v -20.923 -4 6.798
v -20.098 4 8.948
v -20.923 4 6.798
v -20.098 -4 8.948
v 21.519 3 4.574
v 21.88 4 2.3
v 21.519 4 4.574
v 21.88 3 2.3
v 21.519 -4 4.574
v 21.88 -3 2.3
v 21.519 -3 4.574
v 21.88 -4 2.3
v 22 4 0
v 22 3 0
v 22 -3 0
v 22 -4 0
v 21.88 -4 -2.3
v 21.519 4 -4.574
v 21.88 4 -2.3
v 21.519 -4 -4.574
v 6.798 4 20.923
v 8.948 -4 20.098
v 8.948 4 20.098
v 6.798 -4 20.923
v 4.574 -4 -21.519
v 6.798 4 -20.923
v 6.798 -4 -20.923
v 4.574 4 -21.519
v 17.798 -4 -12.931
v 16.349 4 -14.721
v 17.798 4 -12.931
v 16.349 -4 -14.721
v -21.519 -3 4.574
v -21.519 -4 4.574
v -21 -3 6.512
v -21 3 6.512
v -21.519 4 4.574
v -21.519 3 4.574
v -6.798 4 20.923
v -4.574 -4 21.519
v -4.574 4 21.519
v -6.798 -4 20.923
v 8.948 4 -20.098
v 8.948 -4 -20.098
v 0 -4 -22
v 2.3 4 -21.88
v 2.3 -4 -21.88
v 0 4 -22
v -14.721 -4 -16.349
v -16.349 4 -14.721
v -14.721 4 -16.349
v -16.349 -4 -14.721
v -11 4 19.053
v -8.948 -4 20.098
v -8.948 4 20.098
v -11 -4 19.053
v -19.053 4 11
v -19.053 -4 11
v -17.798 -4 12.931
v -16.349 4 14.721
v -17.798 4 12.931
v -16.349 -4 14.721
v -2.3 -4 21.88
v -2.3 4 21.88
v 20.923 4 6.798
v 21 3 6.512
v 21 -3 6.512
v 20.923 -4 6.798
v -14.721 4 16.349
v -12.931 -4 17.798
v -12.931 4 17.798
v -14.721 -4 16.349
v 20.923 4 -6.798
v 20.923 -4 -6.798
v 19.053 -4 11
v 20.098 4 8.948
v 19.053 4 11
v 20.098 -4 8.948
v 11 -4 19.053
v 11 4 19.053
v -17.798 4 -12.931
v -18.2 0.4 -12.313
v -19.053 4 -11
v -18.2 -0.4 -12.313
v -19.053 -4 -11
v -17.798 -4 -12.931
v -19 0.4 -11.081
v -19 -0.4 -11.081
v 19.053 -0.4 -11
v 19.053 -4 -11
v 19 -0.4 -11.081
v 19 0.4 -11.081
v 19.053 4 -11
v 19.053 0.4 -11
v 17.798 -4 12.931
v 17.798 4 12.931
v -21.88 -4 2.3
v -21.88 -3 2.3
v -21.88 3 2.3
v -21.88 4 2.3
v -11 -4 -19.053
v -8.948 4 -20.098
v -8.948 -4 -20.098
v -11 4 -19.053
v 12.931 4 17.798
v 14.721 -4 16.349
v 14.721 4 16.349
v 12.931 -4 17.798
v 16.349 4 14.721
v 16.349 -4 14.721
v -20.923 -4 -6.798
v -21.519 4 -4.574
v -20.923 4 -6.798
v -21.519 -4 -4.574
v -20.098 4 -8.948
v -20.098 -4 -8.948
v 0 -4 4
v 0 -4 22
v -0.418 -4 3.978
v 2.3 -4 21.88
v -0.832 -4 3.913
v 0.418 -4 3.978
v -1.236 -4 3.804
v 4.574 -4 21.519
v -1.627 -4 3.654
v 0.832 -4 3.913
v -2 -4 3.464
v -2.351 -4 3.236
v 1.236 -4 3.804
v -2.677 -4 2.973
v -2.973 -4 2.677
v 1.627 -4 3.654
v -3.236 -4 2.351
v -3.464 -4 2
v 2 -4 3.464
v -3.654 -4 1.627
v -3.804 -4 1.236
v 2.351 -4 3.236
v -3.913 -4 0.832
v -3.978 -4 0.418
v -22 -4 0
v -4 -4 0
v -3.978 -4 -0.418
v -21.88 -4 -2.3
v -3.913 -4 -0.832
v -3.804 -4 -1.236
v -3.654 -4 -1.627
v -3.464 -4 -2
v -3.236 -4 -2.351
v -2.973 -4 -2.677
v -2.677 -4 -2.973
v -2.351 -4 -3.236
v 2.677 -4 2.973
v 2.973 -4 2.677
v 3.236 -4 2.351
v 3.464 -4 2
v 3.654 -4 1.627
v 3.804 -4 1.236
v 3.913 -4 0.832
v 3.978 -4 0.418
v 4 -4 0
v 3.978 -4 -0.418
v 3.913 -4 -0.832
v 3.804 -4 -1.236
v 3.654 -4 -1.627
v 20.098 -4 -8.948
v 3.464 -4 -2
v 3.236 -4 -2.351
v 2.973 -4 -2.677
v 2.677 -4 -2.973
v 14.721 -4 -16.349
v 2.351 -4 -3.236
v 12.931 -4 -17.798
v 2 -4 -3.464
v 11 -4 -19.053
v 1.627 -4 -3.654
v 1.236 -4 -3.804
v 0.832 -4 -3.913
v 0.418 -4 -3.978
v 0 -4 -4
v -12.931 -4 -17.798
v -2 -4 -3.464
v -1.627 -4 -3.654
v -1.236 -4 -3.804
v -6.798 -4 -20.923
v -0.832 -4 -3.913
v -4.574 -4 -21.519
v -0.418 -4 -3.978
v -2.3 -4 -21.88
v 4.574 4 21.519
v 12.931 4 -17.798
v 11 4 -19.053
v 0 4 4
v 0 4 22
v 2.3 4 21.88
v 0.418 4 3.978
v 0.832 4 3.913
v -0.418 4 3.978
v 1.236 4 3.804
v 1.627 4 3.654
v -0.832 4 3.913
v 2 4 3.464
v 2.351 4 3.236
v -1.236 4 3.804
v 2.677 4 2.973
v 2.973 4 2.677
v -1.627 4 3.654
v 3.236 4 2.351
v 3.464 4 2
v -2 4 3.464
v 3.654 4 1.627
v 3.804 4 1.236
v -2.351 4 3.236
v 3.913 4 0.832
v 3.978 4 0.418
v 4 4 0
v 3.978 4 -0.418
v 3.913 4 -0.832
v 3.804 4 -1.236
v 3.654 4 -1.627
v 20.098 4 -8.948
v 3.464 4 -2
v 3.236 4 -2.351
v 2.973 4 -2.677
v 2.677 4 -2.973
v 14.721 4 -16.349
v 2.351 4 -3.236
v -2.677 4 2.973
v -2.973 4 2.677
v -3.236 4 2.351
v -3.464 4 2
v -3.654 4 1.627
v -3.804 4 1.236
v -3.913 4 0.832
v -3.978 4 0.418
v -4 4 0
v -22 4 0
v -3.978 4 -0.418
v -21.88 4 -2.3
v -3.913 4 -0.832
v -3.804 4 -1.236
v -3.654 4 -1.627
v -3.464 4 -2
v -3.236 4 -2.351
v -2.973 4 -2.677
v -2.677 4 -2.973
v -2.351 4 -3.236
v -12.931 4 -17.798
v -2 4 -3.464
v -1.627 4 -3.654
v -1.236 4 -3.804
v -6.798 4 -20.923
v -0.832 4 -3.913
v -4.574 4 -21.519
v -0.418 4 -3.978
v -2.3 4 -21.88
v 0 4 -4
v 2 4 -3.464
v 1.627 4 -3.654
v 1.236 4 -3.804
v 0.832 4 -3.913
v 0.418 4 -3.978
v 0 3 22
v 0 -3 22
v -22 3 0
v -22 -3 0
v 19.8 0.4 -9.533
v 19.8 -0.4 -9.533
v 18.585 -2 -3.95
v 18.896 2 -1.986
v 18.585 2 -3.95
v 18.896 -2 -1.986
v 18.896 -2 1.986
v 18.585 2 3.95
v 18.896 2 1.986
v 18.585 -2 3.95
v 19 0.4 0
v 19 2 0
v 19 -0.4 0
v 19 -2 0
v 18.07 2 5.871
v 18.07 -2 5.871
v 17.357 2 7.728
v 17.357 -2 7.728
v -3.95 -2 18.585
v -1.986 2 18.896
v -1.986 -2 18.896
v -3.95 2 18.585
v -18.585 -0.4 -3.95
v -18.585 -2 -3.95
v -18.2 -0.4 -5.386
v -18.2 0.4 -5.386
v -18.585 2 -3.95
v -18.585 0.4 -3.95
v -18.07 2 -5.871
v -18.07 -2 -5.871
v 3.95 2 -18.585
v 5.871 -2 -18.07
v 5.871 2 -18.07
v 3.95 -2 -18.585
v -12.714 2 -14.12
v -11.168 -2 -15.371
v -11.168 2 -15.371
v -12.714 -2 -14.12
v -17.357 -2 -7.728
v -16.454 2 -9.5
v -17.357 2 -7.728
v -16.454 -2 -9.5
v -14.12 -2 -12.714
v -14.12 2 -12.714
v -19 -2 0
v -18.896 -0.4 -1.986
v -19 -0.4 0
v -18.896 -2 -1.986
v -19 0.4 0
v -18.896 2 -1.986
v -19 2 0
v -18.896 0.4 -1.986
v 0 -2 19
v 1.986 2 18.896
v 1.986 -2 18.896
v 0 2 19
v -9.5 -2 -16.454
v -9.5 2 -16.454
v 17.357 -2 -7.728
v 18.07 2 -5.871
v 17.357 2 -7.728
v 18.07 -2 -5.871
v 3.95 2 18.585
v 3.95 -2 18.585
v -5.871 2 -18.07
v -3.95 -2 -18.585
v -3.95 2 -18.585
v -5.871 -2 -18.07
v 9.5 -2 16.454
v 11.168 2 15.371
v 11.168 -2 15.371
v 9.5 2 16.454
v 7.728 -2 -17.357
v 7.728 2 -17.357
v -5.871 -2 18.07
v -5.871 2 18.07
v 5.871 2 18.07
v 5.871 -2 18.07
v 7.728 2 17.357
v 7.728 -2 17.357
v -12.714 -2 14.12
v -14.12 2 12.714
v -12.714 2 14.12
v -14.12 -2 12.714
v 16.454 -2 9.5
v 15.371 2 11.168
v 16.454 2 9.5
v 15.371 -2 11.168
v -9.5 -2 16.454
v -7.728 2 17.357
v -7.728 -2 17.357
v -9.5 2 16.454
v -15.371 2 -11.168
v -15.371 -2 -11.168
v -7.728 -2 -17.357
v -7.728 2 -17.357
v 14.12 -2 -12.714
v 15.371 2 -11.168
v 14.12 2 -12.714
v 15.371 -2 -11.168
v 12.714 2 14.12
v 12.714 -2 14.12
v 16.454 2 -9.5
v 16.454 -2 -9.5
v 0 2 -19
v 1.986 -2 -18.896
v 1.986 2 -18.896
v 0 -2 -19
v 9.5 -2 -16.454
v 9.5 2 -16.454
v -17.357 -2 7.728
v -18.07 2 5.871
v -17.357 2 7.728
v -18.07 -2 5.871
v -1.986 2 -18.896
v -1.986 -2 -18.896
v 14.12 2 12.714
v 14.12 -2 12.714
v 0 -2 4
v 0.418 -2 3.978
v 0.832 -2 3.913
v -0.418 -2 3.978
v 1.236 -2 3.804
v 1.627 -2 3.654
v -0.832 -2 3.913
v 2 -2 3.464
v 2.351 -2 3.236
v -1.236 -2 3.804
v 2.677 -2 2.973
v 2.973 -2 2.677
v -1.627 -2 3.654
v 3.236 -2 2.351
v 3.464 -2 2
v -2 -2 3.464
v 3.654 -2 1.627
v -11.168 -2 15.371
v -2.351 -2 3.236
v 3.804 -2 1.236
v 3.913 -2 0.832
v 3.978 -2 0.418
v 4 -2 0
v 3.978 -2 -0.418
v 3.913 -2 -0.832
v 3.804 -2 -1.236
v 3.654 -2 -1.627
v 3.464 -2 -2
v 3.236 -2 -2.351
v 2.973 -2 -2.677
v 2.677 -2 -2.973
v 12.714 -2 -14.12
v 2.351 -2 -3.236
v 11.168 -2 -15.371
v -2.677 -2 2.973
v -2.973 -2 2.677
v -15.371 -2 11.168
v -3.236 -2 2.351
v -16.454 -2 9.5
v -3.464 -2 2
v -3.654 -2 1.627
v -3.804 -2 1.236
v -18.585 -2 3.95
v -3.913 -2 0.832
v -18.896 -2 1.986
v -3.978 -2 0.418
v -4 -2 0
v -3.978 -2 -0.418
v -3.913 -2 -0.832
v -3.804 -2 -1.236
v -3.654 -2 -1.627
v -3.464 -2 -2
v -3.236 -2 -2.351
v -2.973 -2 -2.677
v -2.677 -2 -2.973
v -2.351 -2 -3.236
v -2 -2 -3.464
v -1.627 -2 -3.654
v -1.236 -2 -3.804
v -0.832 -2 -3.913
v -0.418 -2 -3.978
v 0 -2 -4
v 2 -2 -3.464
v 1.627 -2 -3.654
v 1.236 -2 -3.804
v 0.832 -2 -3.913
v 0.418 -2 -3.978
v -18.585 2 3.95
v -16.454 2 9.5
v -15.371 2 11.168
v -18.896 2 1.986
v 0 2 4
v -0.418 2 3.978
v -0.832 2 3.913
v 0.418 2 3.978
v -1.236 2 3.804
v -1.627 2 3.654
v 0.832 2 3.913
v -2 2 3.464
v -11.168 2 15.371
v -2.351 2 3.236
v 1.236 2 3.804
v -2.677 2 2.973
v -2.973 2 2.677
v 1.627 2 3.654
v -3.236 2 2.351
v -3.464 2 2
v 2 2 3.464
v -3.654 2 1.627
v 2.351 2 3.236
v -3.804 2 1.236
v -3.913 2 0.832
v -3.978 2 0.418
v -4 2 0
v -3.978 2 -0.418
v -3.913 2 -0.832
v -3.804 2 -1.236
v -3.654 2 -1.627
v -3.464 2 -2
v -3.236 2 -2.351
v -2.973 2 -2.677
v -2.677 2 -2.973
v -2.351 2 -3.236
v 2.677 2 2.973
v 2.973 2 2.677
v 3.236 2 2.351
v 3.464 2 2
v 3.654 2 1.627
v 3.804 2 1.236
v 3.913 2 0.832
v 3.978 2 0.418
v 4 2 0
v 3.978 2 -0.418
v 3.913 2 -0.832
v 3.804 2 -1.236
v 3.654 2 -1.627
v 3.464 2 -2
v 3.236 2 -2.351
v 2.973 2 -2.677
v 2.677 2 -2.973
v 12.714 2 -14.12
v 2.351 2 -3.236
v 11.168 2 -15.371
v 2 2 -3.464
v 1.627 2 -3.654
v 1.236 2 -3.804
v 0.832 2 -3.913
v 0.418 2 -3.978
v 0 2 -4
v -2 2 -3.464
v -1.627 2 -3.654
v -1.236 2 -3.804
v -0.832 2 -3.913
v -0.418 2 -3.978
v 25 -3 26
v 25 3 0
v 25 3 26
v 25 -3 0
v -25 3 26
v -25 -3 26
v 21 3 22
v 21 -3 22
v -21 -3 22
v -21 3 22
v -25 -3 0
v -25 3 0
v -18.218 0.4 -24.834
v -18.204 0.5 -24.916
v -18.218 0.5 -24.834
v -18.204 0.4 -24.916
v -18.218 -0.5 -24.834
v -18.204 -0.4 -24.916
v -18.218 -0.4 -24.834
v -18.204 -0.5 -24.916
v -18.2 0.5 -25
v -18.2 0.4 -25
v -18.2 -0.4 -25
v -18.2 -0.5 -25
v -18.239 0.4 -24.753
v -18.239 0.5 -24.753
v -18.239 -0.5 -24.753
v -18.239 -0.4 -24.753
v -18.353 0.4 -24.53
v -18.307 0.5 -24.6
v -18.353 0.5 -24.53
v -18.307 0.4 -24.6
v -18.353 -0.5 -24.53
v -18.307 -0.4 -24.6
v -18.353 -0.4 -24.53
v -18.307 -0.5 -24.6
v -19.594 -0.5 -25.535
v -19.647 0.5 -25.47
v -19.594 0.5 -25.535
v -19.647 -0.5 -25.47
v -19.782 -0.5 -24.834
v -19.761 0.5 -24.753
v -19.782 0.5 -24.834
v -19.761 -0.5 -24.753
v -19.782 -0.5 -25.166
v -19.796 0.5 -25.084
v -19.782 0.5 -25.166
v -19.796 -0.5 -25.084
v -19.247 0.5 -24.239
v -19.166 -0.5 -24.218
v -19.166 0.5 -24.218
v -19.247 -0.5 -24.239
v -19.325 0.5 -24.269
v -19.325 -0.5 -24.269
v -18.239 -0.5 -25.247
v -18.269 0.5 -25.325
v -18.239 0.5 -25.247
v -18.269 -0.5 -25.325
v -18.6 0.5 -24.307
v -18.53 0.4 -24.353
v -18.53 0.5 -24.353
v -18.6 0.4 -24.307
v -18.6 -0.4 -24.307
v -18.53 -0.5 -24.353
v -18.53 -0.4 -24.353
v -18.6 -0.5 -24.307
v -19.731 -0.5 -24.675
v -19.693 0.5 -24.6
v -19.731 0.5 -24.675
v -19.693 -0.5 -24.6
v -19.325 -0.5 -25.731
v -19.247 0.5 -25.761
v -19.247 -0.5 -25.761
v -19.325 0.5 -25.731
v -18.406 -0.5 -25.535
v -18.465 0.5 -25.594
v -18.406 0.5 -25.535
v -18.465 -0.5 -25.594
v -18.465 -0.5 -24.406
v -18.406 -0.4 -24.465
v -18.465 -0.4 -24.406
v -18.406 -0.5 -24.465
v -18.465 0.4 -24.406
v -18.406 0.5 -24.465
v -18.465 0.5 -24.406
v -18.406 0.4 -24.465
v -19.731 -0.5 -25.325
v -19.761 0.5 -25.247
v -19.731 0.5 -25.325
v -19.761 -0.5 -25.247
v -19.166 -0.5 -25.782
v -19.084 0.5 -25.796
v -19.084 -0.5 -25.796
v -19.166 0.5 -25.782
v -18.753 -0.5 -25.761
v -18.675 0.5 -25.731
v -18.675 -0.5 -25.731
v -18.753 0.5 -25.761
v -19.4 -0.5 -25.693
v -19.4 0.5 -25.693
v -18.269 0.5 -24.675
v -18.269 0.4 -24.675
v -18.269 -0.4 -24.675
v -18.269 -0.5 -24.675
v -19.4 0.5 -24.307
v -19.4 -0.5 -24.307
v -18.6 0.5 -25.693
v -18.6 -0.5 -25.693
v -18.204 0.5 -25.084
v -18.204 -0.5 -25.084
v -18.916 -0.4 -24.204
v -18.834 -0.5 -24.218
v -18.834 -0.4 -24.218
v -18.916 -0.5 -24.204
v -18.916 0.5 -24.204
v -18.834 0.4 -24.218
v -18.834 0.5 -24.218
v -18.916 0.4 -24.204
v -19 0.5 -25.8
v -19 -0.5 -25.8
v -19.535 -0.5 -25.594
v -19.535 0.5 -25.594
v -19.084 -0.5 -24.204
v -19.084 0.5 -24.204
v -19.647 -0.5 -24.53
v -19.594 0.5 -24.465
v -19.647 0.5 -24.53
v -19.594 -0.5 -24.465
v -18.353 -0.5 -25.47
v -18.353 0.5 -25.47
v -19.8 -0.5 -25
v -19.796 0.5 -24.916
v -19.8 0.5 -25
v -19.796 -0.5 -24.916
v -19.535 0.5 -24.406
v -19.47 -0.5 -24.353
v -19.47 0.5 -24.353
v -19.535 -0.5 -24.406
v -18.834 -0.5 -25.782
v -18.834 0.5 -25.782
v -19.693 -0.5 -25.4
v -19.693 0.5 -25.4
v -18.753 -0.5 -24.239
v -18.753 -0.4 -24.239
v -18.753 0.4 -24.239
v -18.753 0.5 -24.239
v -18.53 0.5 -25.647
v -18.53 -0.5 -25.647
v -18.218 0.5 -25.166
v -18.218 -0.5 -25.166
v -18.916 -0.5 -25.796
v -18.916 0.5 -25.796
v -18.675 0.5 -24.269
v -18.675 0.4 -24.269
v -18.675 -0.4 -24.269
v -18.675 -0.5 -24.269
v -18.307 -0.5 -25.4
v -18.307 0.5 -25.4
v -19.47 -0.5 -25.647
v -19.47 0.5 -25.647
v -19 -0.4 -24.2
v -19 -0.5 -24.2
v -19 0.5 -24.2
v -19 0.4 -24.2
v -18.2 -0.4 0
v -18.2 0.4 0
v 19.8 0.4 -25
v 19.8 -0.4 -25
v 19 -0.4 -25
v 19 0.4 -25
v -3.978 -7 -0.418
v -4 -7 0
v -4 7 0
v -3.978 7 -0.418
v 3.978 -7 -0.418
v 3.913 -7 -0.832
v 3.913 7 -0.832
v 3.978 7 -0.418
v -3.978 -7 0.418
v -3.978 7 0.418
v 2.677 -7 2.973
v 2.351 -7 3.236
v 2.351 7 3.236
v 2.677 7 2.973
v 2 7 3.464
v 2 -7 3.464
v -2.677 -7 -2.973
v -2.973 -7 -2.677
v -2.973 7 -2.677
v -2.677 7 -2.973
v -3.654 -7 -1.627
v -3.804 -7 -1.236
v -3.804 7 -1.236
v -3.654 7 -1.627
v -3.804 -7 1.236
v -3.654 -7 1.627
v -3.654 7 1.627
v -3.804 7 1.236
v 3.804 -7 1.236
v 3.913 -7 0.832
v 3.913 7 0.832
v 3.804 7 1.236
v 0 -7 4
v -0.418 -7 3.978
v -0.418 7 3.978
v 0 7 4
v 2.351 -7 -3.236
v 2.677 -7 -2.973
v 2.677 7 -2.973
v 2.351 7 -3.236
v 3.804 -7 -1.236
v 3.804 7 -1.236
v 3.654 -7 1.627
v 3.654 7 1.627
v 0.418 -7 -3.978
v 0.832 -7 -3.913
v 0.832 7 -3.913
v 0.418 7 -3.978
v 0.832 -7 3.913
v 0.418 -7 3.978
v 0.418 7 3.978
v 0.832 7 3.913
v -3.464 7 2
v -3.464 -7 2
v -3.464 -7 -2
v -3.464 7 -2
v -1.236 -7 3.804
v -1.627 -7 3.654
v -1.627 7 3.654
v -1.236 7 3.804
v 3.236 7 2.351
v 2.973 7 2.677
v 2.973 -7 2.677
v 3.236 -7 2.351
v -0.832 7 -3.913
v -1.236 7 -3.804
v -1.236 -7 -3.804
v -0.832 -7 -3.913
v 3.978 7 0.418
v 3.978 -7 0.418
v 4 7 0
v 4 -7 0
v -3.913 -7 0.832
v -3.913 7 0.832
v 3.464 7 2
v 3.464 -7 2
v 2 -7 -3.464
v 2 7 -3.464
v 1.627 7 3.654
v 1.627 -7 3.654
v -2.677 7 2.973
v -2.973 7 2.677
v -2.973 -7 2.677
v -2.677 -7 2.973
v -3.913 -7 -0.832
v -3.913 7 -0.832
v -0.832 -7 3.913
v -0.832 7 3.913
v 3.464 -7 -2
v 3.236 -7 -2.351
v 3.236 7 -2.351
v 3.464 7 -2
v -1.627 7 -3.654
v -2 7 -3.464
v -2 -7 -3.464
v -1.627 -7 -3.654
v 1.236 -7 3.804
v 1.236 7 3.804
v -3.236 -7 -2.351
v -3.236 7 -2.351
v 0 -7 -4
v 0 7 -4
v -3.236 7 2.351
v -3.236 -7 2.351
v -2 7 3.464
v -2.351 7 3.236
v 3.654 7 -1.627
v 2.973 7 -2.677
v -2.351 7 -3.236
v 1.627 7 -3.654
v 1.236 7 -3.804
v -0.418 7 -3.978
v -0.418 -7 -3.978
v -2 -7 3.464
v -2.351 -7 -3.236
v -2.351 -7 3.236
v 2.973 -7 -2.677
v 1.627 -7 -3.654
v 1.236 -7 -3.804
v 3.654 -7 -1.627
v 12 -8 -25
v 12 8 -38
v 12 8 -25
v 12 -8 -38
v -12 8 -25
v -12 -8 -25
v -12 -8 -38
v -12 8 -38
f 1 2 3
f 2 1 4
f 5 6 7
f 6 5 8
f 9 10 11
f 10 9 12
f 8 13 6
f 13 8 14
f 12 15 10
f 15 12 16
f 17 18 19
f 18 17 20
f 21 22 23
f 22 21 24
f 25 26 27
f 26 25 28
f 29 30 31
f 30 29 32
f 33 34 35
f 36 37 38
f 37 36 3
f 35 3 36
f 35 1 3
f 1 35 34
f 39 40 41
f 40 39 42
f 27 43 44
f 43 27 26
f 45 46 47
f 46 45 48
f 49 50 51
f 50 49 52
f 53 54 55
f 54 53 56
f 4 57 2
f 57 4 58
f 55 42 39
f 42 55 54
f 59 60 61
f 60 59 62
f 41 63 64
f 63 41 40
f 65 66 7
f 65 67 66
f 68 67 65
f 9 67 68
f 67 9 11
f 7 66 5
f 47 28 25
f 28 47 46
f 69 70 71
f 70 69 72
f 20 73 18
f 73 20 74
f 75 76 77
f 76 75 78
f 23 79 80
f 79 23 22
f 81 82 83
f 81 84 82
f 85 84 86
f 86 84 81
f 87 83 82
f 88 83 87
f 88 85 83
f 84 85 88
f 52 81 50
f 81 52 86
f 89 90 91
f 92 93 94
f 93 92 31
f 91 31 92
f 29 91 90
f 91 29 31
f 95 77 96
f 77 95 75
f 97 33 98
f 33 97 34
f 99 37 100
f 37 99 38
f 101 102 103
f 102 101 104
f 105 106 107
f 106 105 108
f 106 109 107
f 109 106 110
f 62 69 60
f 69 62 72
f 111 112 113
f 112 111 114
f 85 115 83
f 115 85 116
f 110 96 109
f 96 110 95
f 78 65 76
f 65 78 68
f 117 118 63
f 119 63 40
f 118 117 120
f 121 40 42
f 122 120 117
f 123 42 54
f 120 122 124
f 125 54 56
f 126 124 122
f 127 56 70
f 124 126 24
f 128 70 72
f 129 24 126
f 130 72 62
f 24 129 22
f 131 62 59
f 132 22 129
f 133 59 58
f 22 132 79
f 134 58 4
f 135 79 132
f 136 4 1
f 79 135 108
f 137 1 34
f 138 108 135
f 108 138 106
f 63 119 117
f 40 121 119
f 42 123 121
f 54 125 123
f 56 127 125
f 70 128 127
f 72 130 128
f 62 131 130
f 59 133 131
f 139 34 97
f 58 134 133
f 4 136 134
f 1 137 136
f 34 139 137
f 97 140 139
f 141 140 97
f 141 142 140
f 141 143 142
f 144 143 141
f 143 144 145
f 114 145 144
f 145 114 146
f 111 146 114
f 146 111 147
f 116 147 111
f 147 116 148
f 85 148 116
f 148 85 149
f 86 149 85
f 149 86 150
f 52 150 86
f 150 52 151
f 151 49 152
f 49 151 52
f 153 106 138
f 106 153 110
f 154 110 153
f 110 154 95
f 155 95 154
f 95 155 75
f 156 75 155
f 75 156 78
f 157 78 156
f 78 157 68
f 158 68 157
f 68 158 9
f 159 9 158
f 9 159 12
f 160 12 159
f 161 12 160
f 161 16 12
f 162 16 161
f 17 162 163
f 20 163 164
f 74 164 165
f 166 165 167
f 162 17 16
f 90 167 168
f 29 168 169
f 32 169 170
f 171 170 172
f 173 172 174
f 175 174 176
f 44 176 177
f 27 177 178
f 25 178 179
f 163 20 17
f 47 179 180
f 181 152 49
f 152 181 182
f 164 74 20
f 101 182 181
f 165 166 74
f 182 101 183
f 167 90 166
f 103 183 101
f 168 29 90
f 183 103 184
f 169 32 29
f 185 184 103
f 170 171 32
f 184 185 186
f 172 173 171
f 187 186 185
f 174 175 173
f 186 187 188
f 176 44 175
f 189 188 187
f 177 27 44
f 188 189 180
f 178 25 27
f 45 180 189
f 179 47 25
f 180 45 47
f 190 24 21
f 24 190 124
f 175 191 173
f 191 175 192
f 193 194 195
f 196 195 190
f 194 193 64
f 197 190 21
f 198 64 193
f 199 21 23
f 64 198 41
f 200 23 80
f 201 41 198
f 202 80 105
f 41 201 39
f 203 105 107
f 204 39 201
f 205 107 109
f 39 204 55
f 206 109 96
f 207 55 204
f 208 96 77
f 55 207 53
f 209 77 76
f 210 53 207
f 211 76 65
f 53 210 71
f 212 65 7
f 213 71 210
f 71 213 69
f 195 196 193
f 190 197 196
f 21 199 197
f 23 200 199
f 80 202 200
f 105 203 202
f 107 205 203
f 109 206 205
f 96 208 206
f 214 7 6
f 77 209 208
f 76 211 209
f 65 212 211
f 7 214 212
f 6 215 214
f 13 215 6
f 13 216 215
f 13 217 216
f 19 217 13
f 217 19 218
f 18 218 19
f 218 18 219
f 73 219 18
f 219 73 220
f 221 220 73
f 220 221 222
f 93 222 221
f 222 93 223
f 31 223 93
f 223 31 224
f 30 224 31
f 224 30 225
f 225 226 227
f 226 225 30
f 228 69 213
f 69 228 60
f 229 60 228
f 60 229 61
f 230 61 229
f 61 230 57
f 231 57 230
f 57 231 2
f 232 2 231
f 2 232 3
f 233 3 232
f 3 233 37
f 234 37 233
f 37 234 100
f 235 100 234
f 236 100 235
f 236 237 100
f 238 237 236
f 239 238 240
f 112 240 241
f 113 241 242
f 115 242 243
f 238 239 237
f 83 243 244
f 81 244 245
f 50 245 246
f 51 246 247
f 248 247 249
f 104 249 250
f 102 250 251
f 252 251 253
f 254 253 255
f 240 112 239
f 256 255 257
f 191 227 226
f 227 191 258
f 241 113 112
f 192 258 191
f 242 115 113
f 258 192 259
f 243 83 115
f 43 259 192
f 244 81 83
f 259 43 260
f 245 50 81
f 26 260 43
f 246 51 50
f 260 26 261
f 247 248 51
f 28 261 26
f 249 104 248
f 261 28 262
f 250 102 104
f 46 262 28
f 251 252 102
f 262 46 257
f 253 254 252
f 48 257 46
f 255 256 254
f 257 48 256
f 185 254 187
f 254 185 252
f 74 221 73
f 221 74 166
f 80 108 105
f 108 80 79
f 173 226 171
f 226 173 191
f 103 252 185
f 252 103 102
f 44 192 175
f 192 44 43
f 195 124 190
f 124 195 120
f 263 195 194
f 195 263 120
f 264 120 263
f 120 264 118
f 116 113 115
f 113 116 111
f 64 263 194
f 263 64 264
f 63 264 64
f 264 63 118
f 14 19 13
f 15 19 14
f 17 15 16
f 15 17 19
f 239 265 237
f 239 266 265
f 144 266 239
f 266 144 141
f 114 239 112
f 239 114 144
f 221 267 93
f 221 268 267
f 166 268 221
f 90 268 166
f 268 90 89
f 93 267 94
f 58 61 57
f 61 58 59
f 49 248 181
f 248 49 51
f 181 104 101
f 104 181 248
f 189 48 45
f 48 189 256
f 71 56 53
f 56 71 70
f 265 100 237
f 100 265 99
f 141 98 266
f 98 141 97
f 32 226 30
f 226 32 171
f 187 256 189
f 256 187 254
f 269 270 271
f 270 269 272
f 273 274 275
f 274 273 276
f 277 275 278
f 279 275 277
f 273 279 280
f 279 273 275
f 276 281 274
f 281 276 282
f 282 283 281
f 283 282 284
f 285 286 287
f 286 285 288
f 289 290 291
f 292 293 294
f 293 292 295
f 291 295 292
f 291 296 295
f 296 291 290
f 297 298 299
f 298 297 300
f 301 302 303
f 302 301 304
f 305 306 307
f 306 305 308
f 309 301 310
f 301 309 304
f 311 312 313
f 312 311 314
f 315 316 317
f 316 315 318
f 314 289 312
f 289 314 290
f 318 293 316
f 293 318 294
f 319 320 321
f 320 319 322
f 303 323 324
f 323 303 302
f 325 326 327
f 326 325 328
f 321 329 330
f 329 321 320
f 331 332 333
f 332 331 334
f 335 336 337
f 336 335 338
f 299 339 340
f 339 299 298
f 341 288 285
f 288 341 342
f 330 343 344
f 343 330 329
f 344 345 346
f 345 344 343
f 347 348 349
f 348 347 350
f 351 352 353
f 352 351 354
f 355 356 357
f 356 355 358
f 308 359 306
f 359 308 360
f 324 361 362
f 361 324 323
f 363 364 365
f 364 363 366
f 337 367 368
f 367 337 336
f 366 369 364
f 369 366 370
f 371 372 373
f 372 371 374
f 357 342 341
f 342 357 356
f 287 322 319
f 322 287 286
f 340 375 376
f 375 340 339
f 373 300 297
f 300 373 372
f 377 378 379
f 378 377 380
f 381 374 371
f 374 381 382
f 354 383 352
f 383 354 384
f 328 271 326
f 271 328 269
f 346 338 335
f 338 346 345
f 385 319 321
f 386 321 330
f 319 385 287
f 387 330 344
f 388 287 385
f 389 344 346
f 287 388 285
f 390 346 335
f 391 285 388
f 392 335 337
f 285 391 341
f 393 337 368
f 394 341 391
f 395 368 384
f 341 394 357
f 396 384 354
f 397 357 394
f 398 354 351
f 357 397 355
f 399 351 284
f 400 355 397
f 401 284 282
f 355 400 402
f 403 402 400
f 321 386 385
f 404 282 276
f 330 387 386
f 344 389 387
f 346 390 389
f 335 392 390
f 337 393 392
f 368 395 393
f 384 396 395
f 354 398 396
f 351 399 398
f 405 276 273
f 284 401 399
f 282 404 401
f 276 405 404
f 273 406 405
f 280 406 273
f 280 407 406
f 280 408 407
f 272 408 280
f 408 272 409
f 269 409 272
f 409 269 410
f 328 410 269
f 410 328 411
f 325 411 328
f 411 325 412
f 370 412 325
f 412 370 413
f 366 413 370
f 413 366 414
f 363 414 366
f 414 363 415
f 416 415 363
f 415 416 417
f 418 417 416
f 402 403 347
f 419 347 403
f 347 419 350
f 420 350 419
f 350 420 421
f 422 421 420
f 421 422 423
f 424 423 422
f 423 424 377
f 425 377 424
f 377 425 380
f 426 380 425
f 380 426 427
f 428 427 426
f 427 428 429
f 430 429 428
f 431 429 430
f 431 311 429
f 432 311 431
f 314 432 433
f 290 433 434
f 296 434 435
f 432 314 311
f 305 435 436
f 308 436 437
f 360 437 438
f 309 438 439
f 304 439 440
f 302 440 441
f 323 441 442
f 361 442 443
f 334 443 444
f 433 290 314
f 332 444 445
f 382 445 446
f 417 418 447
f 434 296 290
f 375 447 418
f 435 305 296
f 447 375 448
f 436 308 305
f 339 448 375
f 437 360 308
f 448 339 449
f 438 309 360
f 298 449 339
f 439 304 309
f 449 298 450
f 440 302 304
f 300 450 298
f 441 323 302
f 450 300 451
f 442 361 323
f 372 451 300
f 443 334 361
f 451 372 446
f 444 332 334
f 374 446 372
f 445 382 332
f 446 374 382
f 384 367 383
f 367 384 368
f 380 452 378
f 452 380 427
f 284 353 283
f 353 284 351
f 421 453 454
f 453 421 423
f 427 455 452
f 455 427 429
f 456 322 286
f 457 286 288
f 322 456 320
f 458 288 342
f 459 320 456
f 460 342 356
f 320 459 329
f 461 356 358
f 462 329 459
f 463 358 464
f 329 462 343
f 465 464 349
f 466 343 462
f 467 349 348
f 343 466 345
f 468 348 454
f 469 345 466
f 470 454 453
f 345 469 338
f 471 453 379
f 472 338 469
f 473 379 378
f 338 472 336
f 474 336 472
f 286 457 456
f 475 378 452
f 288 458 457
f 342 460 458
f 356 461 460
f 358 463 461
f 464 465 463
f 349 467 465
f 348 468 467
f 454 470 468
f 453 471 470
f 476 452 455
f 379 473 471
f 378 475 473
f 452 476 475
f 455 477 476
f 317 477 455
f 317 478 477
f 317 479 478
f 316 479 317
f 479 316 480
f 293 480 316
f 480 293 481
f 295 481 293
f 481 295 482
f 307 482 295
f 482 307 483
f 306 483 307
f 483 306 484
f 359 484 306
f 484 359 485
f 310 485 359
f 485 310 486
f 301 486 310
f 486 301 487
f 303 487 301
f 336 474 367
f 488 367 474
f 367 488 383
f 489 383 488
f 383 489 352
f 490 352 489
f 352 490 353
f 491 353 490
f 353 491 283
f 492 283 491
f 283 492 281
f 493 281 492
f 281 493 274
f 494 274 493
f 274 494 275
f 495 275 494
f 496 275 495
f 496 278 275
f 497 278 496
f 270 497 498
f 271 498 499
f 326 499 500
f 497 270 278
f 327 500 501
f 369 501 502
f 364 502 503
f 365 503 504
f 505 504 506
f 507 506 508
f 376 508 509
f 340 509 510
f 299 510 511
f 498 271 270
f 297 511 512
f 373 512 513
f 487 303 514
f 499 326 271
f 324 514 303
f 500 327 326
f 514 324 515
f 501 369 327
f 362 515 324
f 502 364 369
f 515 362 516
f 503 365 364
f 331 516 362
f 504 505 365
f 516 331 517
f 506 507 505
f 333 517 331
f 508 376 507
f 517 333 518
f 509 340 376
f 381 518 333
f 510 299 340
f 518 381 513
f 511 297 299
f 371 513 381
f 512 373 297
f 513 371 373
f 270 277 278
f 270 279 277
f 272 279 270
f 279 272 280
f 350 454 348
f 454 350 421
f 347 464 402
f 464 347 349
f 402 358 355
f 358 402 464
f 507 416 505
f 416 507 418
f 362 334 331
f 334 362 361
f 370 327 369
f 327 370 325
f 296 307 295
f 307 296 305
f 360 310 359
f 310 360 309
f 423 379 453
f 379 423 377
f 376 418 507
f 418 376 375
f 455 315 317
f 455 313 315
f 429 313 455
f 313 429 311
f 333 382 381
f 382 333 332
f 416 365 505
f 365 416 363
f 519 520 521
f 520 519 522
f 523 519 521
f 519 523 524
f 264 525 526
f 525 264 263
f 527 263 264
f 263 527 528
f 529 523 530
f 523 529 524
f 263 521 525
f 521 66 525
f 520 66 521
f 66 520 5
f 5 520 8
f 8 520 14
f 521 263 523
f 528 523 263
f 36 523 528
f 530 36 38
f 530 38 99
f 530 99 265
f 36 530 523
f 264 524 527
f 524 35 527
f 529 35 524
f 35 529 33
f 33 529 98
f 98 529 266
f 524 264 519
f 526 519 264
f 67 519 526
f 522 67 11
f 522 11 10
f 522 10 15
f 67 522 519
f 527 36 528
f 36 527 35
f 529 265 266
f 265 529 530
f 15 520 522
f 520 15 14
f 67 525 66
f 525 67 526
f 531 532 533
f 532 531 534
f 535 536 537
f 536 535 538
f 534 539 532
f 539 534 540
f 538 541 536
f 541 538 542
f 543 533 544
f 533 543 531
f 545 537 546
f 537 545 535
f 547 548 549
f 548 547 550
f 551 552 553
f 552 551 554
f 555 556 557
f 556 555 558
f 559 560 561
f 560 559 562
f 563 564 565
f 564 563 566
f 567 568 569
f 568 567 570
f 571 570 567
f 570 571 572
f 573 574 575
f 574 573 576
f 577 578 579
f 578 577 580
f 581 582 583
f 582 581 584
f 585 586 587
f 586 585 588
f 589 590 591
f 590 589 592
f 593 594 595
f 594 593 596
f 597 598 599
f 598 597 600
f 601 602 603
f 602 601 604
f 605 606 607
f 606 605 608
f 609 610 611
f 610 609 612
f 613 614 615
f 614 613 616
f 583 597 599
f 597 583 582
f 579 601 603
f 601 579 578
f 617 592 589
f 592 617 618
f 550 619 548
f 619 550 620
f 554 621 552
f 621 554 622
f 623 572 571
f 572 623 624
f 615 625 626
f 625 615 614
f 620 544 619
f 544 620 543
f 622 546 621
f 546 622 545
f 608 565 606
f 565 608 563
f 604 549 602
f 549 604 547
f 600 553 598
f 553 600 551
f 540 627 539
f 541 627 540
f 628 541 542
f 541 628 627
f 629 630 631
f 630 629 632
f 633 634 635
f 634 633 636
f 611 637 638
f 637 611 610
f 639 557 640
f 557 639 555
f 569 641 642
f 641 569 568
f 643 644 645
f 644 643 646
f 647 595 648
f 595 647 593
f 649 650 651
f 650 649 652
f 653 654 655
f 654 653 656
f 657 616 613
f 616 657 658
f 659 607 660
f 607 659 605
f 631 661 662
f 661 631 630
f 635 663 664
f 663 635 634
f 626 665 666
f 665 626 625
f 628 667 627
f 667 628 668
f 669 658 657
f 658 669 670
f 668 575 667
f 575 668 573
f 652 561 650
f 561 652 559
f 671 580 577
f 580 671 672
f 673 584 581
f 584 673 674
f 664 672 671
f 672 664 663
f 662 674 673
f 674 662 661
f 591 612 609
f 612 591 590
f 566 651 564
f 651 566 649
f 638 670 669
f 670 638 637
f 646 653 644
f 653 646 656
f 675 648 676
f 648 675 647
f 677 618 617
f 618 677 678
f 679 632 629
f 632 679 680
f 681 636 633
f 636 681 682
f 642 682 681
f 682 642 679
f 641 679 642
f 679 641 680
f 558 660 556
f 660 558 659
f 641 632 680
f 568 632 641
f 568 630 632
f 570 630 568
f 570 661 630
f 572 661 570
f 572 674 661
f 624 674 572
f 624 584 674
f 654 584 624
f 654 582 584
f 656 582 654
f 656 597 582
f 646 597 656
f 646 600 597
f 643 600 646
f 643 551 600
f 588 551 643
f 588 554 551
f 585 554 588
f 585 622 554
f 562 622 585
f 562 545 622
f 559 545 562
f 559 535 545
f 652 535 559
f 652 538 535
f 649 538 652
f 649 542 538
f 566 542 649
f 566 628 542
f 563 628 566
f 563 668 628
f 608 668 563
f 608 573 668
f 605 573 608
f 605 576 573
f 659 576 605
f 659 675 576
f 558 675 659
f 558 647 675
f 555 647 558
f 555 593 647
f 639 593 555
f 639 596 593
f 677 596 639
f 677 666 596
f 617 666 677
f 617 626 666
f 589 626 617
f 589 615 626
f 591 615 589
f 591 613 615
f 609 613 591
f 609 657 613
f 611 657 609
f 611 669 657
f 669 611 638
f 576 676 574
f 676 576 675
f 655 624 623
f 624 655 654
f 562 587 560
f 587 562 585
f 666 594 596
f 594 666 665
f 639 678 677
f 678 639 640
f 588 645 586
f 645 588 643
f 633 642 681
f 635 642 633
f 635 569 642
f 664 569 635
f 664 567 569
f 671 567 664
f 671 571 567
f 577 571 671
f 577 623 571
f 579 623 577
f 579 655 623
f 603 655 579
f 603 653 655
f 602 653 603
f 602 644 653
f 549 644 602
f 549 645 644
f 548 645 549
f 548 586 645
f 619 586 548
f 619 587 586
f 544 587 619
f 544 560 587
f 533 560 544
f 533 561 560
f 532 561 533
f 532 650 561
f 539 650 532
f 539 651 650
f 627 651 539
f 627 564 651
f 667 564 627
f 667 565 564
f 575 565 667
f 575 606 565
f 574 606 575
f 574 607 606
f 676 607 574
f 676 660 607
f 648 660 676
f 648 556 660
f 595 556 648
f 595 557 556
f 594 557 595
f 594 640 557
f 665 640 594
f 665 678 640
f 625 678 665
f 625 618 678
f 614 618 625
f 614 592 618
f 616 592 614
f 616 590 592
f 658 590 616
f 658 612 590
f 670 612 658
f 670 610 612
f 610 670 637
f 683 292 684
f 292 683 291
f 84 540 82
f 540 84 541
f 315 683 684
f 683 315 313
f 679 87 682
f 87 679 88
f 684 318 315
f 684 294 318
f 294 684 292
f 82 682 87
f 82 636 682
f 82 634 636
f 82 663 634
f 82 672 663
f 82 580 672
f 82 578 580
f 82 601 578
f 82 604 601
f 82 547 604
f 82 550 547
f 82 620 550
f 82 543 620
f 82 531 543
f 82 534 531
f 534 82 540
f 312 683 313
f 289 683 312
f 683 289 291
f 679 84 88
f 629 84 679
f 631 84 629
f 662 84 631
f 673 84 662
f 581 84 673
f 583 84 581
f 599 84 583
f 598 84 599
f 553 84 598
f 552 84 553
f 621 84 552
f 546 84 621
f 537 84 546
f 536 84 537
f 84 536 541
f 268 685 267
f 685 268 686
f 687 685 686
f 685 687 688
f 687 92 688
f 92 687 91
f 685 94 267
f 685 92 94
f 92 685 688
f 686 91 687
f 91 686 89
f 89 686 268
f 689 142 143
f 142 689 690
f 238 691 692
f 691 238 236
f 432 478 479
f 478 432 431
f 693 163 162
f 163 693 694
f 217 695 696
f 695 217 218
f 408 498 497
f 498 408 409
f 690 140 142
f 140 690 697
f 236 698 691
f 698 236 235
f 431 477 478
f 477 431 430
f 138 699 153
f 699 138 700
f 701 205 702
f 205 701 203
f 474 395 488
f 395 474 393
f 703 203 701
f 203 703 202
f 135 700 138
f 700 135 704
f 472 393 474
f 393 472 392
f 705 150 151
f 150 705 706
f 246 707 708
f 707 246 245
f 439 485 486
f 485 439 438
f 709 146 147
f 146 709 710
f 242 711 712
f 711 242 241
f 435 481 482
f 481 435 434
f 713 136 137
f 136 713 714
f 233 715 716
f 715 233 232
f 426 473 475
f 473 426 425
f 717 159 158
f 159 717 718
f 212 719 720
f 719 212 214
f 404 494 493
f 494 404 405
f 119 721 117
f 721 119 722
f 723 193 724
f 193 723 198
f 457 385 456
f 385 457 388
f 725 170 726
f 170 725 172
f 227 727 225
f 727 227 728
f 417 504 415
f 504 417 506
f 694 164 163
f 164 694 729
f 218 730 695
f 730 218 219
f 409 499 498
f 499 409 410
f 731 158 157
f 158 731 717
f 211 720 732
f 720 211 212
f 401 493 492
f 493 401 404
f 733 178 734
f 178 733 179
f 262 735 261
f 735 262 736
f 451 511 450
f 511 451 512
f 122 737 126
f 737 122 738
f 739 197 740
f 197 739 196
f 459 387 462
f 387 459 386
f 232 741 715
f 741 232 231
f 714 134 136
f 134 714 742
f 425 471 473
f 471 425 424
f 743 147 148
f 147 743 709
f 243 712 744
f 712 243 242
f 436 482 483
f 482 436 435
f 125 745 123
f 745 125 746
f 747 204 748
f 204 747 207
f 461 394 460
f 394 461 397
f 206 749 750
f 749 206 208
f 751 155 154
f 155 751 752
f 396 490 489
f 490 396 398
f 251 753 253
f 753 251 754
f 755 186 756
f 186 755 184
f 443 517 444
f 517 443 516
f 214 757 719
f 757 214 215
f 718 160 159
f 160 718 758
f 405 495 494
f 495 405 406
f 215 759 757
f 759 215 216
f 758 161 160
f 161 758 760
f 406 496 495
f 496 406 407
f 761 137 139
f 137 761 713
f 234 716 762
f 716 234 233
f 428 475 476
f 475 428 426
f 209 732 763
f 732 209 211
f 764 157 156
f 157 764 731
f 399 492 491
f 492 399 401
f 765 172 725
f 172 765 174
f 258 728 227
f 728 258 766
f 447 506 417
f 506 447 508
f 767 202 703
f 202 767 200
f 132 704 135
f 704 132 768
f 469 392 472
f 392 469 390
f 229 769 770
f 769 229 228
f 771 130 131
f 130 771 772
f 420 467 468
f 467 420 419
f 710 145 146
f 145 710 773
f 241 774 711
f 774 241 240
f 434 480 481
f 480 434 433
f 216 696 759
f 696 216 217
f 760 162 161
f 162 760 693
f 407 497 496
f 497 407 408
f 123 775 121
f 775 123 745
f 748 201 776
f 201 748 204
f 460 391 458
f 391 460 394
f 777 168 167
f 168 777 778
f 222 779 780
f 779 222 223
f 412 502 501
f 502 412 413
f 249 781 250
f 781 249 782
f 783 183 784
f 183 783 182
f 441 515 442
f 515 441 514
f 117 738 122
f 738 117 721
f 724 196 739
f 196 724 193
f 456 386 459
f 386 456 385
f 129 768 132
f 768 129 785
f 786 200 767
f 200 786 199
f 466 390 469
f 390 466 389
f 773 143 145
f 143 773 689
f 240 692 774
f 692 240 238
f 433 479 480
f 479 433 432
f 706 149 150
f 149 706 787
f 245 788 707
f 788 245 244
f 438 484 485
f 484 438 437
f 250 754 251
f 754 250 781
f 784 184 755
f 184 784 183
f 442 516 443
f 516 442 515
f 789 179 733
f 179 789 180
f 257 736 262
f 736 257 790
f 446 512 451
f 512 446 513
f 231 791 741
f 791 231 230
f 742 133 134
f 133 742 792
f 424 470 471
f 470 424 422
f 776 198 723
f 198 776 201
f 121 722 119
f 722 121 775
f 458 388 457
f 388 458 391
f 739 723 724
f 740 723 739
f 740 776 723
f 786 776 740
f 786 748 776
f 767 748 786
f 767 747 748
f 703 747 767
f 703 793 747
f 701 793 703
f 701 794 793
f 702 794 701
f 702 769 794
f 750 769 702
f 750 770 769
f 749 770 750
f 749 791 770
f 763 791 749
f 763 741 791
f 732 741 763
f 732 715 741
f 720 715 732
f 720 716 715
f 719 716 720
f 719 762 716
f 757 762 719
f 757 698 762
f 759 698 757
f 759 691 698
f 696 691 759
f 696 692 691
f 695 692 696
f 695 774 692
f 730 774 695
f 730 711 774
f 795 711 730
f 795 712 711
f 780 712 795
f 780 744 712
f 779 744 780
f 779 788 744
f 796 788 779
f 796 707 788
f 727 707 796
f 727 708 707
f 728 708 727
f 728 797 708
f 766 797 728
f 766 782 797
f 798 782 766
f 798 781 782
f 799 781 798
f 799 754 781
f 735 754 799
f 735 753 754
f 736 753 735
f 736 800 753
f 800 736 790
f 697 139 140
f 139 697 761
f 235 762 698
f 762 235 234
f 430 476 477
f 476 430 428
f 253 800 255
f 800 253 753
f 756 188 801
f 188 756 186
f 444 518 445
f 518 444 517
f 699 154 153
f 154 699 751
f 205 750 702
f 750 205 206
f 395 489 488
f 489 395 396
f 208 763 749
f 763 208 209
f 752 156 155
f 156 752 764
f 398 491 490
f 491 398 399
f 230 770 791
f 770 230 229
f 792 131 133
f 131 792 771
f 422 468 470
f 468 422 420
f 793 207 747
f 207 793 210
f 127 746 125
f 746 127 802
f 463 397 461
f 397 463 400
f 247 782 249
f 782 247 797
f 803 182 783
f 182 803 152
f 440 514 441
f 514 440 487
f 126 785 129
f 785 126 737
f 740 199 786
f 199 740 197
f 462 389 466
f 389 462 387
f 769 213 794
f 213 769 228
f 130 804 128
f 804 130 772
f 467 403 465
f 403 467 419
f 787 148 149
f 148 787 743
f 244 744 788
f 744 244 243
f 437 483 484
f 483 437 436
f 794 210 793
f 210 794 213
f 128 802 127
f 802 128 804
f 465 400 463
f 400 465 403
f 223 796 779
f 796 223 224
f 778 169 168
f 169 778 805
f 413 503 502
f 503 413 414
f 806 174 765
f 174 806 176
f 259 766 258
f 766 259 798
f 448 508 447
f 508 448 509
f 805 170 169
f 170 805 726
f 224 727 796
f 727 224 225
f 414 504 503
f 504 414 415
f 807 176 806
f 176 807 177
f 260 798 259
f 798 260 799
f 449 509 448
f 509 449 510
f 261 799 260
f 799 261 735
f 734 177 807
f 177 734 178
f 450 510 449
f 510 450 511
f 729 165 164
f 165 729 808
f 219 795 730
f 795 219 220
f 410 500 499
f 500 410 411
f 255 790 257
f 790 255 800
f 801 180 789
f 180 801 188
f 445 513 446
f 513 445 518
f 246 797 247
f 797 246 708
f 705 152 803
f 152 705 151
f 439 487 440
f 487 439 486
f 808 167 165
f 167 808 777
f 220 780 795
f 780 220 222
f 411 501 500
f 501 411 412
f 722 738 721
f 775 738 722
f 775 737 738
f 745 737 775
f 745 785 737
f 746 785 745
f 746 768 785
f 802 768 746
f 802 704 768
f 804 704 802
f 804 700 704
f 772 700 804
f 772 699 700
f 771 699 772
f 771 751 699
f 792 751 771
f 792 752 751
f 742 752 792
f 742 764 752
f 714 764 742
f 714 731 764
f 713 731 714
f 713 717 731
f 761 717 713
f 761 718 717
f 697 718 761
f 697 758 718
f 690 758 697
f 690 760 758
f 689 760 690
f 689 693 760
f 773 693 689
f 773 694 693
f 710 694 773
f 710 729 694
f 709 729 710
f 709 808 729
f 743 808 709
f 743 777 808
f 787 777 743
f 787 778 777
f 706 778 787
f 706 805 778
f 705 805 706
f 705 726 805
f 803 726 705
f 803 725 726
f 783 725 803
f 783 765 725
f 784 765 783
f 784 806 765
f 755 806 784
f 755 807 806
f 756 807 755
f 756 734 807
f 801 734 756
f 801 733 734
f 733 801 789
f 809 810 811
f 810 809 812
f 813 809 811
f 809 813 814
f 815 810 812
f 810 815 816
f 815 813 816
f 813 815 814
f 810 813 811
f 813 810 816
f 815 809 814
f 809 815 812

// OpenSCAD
// file: _common.scad
// mechanism 共用設定 + 齒輪 module
$fn = 60;

// 簡化齒輪：N 個齒、節圓半徑 r、齒高 h、齒寬 w
module simple_gear(N = 16, r = 20, h = 4, thick = 6) {
  union() {
    // 主圓盤
    cylinder(h = thick, r = r, center = true);
    // 齒（梯形）
    for (i = [0:N-1]) {
      rotate([0, 0, i * 360 / N])
        translate([r, 0, 0])
          linear_extrude(height = thick, center = true)
            polygon([[0, -2.4], [h, -1.4], [h, 1.4], [0, 2.4]]);
    }
    // 中心凸軸
    cylinder(h = thick * 1.4, r = r * 0.18, center = true);
  }
}
// main file
// 滑輪 Pulley — 繞線輪 + 軸 + 支撐架 + 繩索 + 重物
include <_common.scad>

// 滑輪（圓盤帶凹槽）
color([0.86, 0.15, 0.46])
  difference() {
    rotate([90, 0, 0]) cylinder(h = 8, r = 22, center = true);
    // 中央凹槽（讓繩索定位）
    rotate([90, 0, 0]) cylinder(h = 4, r = 19, center = true);
  }

// 中心軸
color([0.62, 0.08, 0.30])
  rotate([90, 0, 0]) cylinder(h = 14, r = 4, center = true);

// 支撐架（橋型框架）
color([0.51, 0.09, 0.26]) {
  // 頂橫梁
  translate([-25, -3, 22]) cube([50, 6, 4]);
  // 左豎桿
  translate([-25, -3, 0]) cube([4, 6, 22]);
  // 右豎桿
  translate([21, -3, 0]) cube([4, 6, 22]);
}

// 繩索（兩條垂直線）
color([0.09, 0.64, 0.29]) {
  translate([-19, 0, -25]) rotate([90, 0, 0]) cylinder(h = 1, r = 0.8, center = true);
  // 左邊垂吊到重物
  translate([-19, -0.4, -25]) cube([0.8, 0.8, 25]);
  translate([19, -0.4, -25]) cube([0.8, 0.8, 25]);
}

// 重物（吊在繩索下方）
color([0.32, 0.08, 0.16])
  translate([-12, -8, -38]) cube([24, 16, 13]);
